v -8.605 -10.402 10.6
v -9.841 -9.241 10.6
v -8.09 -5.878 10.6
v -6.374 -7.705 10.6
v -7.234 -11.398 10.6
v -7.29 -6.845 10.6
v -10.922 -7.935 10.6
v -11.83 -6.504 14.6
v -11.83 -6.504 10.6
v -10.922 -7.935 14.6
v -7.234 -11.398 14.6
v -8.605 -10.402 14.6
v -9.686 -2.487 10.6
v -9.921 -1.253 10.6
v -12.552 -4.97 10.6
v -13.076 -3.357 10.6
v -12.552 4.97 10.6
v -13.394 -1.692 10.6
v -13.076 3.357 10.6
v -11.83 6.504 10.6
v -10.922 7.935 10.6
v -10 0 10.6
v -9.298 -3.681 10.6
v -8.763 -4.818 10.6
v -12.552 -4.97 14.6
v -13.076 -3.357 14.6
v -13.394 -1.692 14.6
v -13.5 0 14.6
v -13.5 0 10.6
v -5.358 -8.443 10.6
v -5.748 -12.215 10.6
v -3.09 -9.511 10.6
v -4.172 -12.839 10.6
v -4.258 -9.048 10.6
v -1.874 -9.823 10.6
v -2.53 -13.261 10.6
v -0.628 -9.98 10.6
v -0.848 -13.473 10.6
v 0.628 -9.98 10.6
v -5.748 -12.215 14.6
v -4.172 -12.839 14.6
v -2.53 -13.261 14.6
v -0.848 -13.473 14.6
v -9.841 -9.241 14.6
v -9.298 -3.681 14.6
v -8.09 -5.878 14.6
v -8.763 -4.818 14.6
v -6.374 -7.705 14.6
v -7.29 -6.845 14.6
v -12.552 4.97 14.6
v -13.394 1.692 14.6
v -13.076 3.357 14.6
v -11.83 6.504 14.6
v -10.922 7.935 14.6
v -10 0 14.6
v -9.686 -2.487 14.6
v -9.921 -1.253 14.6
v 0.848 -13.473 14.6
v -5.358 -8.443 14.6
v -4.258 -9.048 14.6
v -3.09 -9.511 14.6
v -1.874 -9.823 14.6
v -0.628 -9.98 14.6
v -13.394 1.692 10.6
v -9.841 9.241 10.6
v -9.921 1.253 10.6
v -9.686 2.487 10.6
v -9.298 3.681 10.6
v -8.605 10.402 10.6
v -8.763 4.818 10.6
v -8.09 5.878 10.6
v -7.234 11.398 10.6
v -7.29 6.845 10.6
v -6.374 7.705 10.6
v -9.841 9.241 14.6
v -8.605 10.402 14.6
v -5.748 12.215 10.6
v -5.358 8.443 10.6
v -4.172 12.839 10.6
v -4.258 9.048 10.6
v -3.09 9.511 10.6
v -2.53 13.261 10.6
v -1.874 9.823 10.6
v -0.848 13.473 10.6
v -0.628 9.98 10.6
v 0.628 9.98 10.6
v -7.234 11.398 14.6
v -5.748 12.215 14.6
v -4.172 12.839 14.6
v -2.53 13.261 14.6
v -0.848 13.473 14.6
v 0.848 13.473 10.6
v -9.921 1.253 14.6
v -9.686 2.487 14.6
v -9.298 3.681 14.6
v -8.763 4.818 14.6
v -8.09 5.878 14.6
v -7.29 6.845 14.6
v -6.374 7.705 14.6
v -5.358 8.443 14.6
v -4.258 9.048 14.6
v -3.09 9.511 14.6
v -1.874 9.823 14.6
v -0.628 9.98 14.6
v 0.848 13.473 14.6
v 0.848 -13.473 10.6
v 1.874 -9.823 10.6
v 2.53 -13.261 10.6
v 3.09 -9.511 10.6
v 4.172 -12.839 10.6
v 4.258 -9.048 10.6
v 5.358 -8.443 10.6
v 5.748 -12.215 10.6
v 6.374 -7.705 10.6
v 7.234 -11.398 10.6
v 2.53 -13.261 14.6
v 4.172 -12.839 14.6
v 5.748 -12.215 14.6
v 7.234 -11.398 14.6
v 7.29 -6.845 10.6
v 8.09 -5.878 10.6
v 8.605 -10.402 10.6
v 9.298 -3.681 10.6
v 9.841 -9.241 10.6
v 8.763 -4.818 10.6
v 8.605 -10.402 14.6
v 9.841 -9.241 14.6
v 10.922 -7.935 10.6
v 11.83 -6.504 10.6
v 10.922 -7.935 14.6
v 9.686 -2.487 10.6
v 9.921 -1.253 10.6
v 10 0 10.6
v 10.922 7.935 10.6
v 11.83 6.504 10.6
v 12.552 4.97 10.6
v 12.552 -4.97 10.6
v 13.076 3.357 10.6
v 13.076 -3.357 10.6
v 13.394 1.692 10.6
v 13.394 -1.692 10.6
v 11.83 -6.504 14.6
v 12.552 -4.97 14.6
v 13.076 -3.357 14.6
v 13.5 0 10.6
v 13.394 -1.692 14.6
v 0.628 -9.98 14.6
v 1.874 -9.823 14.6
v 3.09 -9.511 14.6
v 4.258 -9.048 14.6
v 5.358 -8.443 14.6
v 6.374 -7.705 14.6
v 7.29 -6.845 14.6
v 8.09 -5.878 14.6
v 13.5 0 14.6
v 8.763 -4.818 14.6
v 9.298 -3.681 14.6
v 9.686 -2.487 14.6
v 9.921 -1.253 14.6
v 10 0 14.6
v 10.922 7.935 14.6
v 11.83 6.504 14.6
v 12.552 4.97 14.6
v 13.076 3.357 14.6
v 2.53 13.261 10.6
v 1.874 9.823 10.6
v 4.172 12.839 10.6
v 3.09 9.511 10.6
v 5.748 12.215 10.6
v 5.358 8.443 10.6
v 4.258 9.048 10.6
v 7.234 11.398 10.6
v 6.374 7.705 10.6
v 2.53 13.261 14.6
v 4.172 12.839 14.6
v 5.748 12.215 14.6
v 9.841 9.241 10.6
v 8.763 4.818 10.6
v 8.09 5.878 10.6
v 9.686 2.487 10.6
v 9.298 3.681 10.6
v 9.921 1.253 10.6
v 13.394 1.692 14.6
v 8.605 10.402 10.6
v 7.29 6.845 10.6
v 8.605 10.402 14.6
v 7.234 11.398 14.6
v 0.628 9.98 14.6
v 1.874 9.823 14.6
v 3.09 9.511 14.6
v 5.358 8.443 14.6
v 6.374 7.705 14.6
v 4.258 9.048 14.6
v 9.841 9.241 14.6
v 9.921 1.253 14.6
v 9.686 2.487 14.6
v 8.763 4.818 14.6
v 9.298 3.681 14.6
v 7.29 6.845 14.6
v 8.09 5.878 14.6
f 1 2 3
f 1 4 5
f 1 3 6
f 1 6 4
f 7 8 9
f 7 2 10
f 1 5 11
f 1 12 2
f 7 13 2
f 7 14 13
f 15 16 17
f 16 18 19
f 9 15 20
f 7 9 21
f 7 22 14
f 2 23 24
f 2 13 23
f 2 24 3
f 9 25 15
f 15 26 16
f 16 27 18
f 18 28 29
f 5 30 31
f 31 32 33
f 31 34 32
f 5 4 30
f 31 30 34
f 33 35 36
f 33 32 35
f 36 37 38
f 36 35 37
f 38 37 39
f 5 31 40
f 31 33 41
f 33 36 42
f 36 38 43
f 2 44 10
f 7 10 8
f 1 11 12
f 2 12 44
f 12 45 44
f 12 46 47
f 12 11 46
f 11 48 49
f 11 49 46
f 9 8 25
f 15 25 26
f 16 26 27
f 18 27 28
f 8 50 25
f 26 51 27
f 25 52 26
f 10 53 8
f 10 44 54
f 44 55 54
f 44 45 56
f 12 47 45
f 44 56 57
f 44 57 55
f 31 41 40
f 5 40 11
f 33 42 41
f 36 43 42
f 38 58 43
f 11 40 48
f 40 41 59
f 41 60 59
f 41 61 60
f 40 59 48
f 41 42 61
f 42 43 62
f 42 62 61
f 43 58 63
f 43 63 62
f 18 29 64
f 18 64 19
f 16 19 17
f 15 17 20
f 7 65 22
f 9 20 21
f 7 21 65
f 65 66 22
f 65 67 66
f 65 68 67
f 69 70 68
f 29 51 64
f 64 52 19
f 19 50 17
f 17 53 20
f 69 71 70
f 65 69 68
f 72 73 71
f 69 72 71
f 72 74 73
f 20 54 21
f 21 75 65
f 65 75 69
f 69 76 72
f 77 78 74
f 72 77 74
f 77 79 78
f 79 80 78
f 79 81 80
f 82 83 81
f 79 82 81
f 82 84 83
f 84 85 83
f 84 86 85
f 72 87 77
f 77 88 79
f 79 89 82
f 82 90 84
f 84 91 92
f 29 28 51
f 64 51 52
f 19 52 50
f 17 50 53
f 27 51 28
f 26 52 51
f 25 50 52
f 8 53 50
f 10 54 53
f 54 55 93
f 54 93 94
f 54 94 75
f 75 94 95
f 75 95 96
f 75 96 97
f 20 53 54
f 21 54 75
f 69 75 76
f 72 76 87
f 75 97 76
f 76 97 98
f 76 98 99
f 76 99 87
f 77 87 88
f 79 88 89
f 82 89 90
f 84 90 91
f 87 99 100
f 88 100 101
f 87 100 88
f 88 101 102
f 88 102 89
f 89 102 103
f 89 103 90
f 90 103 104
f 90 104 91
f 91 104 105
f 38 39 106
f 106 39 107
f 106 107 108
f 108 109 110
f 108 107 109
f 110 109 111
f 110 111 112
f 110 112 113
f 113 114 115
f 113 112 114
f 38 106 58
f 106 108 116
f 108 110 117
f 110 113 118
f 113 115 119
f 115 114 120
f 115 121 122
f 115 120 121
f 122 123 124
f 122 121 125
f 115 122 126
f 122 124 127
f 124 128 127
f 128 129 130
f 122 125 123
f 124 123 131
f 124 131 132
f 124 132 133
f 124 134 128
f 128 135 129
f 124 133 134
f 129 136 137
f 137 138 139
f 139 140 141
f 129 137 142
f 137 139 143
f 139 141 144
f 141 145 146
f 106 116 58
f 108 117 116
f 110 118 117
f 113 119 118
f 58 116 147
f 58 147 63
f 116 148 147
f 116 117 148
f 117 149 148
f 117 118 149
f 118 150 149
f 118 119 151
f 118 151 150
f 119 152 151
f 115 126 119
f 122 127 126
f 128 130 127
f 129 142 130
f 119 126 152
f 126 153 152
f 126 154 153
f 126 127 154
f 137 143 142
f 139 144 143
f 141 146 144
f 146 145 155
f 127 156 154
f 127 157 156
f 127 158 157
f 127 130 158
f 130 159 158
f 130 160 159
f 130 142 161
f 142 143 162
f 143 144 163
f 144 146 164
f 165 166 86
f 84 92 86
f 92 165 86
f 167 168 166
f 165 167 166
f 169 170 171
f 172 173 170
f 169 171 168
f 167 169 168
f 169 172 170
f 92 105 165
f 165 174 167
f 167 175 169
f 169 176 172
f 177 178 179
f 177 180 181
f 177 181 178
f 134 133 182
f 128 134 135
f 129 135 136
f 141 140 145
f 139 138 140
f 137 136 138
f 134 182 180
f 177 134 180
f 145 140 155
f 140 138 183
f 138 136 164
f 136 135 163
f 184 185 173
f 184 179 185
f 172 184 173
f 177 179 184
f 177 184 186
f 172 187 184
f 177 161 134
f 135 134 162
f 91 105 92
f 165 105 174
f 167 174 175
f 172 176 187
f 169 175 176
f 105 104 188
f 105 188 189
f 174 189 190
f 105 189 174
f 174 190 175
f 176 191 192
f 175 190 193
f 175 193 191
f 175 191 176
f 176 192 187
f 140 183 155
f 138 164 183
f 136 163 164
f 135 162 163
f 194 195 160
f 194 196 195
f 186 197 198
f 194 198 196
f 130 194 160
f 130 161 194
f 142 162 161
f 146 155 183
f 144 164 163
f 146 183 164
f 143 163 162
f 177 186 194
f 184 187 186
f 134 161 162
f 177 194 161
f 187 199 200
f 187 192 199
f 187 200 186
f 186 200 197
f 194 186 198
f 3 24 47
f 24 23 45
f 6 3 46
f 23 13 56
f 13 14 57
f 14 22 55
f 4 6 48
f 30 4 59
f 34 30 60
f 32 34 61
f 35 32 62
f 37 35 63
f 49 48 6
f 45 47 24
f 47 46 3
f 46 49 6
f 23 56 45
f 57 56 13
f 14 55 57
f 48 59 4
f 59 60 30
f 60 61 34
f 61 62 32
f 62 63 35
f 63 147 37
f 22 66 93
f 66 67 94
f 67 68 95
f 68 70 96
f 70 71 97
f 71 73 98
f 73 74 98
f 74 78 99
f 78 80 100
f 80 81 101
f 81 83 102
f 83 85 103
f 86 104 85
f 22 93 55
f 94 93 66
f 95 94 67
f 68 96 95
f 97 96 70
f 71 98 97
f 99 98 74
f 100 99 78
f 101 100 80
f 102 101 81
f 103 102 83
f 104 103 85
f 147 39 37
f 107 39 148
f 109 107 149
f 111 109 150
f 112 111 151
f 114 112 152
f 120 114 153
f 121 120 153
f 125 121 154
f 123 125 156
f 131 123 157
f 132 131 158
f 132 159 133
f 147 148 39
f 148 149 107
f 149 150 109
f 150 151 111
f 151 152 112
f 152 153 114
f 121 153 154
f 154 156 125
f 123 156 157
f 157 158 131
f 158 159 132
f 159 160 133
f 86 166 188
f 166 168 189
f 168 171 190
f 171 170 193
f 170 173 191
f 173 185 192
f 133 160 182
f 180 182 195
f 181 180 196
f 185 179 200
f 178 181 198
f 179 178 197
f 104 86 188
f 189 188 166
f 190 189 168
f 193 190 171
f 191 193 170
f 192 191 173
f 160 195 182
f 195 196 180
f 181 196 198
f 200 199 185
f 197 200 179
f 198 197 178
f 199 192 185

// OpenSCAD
$fn = 50;

difference() {
	union() {
		translate(v = [0, 0, 12.6]) {
			translate(v = [0, 0, -2.0]) {
				union() {
					difference() {
						cylinder(h = 4.0, r = 13.5);
						cylinder(h = 4.0, r = 10.0);
					}
					difference() {
						translate(v = [0, 0, -50]) {
							cylinder(h = 100, r = 11.75);
						}
						translate(v = [0, 0, -50]) {
							cylinder(h = 100, r = 11.75);
						}
					}
				}
			}
		}
	}
	union();
}
